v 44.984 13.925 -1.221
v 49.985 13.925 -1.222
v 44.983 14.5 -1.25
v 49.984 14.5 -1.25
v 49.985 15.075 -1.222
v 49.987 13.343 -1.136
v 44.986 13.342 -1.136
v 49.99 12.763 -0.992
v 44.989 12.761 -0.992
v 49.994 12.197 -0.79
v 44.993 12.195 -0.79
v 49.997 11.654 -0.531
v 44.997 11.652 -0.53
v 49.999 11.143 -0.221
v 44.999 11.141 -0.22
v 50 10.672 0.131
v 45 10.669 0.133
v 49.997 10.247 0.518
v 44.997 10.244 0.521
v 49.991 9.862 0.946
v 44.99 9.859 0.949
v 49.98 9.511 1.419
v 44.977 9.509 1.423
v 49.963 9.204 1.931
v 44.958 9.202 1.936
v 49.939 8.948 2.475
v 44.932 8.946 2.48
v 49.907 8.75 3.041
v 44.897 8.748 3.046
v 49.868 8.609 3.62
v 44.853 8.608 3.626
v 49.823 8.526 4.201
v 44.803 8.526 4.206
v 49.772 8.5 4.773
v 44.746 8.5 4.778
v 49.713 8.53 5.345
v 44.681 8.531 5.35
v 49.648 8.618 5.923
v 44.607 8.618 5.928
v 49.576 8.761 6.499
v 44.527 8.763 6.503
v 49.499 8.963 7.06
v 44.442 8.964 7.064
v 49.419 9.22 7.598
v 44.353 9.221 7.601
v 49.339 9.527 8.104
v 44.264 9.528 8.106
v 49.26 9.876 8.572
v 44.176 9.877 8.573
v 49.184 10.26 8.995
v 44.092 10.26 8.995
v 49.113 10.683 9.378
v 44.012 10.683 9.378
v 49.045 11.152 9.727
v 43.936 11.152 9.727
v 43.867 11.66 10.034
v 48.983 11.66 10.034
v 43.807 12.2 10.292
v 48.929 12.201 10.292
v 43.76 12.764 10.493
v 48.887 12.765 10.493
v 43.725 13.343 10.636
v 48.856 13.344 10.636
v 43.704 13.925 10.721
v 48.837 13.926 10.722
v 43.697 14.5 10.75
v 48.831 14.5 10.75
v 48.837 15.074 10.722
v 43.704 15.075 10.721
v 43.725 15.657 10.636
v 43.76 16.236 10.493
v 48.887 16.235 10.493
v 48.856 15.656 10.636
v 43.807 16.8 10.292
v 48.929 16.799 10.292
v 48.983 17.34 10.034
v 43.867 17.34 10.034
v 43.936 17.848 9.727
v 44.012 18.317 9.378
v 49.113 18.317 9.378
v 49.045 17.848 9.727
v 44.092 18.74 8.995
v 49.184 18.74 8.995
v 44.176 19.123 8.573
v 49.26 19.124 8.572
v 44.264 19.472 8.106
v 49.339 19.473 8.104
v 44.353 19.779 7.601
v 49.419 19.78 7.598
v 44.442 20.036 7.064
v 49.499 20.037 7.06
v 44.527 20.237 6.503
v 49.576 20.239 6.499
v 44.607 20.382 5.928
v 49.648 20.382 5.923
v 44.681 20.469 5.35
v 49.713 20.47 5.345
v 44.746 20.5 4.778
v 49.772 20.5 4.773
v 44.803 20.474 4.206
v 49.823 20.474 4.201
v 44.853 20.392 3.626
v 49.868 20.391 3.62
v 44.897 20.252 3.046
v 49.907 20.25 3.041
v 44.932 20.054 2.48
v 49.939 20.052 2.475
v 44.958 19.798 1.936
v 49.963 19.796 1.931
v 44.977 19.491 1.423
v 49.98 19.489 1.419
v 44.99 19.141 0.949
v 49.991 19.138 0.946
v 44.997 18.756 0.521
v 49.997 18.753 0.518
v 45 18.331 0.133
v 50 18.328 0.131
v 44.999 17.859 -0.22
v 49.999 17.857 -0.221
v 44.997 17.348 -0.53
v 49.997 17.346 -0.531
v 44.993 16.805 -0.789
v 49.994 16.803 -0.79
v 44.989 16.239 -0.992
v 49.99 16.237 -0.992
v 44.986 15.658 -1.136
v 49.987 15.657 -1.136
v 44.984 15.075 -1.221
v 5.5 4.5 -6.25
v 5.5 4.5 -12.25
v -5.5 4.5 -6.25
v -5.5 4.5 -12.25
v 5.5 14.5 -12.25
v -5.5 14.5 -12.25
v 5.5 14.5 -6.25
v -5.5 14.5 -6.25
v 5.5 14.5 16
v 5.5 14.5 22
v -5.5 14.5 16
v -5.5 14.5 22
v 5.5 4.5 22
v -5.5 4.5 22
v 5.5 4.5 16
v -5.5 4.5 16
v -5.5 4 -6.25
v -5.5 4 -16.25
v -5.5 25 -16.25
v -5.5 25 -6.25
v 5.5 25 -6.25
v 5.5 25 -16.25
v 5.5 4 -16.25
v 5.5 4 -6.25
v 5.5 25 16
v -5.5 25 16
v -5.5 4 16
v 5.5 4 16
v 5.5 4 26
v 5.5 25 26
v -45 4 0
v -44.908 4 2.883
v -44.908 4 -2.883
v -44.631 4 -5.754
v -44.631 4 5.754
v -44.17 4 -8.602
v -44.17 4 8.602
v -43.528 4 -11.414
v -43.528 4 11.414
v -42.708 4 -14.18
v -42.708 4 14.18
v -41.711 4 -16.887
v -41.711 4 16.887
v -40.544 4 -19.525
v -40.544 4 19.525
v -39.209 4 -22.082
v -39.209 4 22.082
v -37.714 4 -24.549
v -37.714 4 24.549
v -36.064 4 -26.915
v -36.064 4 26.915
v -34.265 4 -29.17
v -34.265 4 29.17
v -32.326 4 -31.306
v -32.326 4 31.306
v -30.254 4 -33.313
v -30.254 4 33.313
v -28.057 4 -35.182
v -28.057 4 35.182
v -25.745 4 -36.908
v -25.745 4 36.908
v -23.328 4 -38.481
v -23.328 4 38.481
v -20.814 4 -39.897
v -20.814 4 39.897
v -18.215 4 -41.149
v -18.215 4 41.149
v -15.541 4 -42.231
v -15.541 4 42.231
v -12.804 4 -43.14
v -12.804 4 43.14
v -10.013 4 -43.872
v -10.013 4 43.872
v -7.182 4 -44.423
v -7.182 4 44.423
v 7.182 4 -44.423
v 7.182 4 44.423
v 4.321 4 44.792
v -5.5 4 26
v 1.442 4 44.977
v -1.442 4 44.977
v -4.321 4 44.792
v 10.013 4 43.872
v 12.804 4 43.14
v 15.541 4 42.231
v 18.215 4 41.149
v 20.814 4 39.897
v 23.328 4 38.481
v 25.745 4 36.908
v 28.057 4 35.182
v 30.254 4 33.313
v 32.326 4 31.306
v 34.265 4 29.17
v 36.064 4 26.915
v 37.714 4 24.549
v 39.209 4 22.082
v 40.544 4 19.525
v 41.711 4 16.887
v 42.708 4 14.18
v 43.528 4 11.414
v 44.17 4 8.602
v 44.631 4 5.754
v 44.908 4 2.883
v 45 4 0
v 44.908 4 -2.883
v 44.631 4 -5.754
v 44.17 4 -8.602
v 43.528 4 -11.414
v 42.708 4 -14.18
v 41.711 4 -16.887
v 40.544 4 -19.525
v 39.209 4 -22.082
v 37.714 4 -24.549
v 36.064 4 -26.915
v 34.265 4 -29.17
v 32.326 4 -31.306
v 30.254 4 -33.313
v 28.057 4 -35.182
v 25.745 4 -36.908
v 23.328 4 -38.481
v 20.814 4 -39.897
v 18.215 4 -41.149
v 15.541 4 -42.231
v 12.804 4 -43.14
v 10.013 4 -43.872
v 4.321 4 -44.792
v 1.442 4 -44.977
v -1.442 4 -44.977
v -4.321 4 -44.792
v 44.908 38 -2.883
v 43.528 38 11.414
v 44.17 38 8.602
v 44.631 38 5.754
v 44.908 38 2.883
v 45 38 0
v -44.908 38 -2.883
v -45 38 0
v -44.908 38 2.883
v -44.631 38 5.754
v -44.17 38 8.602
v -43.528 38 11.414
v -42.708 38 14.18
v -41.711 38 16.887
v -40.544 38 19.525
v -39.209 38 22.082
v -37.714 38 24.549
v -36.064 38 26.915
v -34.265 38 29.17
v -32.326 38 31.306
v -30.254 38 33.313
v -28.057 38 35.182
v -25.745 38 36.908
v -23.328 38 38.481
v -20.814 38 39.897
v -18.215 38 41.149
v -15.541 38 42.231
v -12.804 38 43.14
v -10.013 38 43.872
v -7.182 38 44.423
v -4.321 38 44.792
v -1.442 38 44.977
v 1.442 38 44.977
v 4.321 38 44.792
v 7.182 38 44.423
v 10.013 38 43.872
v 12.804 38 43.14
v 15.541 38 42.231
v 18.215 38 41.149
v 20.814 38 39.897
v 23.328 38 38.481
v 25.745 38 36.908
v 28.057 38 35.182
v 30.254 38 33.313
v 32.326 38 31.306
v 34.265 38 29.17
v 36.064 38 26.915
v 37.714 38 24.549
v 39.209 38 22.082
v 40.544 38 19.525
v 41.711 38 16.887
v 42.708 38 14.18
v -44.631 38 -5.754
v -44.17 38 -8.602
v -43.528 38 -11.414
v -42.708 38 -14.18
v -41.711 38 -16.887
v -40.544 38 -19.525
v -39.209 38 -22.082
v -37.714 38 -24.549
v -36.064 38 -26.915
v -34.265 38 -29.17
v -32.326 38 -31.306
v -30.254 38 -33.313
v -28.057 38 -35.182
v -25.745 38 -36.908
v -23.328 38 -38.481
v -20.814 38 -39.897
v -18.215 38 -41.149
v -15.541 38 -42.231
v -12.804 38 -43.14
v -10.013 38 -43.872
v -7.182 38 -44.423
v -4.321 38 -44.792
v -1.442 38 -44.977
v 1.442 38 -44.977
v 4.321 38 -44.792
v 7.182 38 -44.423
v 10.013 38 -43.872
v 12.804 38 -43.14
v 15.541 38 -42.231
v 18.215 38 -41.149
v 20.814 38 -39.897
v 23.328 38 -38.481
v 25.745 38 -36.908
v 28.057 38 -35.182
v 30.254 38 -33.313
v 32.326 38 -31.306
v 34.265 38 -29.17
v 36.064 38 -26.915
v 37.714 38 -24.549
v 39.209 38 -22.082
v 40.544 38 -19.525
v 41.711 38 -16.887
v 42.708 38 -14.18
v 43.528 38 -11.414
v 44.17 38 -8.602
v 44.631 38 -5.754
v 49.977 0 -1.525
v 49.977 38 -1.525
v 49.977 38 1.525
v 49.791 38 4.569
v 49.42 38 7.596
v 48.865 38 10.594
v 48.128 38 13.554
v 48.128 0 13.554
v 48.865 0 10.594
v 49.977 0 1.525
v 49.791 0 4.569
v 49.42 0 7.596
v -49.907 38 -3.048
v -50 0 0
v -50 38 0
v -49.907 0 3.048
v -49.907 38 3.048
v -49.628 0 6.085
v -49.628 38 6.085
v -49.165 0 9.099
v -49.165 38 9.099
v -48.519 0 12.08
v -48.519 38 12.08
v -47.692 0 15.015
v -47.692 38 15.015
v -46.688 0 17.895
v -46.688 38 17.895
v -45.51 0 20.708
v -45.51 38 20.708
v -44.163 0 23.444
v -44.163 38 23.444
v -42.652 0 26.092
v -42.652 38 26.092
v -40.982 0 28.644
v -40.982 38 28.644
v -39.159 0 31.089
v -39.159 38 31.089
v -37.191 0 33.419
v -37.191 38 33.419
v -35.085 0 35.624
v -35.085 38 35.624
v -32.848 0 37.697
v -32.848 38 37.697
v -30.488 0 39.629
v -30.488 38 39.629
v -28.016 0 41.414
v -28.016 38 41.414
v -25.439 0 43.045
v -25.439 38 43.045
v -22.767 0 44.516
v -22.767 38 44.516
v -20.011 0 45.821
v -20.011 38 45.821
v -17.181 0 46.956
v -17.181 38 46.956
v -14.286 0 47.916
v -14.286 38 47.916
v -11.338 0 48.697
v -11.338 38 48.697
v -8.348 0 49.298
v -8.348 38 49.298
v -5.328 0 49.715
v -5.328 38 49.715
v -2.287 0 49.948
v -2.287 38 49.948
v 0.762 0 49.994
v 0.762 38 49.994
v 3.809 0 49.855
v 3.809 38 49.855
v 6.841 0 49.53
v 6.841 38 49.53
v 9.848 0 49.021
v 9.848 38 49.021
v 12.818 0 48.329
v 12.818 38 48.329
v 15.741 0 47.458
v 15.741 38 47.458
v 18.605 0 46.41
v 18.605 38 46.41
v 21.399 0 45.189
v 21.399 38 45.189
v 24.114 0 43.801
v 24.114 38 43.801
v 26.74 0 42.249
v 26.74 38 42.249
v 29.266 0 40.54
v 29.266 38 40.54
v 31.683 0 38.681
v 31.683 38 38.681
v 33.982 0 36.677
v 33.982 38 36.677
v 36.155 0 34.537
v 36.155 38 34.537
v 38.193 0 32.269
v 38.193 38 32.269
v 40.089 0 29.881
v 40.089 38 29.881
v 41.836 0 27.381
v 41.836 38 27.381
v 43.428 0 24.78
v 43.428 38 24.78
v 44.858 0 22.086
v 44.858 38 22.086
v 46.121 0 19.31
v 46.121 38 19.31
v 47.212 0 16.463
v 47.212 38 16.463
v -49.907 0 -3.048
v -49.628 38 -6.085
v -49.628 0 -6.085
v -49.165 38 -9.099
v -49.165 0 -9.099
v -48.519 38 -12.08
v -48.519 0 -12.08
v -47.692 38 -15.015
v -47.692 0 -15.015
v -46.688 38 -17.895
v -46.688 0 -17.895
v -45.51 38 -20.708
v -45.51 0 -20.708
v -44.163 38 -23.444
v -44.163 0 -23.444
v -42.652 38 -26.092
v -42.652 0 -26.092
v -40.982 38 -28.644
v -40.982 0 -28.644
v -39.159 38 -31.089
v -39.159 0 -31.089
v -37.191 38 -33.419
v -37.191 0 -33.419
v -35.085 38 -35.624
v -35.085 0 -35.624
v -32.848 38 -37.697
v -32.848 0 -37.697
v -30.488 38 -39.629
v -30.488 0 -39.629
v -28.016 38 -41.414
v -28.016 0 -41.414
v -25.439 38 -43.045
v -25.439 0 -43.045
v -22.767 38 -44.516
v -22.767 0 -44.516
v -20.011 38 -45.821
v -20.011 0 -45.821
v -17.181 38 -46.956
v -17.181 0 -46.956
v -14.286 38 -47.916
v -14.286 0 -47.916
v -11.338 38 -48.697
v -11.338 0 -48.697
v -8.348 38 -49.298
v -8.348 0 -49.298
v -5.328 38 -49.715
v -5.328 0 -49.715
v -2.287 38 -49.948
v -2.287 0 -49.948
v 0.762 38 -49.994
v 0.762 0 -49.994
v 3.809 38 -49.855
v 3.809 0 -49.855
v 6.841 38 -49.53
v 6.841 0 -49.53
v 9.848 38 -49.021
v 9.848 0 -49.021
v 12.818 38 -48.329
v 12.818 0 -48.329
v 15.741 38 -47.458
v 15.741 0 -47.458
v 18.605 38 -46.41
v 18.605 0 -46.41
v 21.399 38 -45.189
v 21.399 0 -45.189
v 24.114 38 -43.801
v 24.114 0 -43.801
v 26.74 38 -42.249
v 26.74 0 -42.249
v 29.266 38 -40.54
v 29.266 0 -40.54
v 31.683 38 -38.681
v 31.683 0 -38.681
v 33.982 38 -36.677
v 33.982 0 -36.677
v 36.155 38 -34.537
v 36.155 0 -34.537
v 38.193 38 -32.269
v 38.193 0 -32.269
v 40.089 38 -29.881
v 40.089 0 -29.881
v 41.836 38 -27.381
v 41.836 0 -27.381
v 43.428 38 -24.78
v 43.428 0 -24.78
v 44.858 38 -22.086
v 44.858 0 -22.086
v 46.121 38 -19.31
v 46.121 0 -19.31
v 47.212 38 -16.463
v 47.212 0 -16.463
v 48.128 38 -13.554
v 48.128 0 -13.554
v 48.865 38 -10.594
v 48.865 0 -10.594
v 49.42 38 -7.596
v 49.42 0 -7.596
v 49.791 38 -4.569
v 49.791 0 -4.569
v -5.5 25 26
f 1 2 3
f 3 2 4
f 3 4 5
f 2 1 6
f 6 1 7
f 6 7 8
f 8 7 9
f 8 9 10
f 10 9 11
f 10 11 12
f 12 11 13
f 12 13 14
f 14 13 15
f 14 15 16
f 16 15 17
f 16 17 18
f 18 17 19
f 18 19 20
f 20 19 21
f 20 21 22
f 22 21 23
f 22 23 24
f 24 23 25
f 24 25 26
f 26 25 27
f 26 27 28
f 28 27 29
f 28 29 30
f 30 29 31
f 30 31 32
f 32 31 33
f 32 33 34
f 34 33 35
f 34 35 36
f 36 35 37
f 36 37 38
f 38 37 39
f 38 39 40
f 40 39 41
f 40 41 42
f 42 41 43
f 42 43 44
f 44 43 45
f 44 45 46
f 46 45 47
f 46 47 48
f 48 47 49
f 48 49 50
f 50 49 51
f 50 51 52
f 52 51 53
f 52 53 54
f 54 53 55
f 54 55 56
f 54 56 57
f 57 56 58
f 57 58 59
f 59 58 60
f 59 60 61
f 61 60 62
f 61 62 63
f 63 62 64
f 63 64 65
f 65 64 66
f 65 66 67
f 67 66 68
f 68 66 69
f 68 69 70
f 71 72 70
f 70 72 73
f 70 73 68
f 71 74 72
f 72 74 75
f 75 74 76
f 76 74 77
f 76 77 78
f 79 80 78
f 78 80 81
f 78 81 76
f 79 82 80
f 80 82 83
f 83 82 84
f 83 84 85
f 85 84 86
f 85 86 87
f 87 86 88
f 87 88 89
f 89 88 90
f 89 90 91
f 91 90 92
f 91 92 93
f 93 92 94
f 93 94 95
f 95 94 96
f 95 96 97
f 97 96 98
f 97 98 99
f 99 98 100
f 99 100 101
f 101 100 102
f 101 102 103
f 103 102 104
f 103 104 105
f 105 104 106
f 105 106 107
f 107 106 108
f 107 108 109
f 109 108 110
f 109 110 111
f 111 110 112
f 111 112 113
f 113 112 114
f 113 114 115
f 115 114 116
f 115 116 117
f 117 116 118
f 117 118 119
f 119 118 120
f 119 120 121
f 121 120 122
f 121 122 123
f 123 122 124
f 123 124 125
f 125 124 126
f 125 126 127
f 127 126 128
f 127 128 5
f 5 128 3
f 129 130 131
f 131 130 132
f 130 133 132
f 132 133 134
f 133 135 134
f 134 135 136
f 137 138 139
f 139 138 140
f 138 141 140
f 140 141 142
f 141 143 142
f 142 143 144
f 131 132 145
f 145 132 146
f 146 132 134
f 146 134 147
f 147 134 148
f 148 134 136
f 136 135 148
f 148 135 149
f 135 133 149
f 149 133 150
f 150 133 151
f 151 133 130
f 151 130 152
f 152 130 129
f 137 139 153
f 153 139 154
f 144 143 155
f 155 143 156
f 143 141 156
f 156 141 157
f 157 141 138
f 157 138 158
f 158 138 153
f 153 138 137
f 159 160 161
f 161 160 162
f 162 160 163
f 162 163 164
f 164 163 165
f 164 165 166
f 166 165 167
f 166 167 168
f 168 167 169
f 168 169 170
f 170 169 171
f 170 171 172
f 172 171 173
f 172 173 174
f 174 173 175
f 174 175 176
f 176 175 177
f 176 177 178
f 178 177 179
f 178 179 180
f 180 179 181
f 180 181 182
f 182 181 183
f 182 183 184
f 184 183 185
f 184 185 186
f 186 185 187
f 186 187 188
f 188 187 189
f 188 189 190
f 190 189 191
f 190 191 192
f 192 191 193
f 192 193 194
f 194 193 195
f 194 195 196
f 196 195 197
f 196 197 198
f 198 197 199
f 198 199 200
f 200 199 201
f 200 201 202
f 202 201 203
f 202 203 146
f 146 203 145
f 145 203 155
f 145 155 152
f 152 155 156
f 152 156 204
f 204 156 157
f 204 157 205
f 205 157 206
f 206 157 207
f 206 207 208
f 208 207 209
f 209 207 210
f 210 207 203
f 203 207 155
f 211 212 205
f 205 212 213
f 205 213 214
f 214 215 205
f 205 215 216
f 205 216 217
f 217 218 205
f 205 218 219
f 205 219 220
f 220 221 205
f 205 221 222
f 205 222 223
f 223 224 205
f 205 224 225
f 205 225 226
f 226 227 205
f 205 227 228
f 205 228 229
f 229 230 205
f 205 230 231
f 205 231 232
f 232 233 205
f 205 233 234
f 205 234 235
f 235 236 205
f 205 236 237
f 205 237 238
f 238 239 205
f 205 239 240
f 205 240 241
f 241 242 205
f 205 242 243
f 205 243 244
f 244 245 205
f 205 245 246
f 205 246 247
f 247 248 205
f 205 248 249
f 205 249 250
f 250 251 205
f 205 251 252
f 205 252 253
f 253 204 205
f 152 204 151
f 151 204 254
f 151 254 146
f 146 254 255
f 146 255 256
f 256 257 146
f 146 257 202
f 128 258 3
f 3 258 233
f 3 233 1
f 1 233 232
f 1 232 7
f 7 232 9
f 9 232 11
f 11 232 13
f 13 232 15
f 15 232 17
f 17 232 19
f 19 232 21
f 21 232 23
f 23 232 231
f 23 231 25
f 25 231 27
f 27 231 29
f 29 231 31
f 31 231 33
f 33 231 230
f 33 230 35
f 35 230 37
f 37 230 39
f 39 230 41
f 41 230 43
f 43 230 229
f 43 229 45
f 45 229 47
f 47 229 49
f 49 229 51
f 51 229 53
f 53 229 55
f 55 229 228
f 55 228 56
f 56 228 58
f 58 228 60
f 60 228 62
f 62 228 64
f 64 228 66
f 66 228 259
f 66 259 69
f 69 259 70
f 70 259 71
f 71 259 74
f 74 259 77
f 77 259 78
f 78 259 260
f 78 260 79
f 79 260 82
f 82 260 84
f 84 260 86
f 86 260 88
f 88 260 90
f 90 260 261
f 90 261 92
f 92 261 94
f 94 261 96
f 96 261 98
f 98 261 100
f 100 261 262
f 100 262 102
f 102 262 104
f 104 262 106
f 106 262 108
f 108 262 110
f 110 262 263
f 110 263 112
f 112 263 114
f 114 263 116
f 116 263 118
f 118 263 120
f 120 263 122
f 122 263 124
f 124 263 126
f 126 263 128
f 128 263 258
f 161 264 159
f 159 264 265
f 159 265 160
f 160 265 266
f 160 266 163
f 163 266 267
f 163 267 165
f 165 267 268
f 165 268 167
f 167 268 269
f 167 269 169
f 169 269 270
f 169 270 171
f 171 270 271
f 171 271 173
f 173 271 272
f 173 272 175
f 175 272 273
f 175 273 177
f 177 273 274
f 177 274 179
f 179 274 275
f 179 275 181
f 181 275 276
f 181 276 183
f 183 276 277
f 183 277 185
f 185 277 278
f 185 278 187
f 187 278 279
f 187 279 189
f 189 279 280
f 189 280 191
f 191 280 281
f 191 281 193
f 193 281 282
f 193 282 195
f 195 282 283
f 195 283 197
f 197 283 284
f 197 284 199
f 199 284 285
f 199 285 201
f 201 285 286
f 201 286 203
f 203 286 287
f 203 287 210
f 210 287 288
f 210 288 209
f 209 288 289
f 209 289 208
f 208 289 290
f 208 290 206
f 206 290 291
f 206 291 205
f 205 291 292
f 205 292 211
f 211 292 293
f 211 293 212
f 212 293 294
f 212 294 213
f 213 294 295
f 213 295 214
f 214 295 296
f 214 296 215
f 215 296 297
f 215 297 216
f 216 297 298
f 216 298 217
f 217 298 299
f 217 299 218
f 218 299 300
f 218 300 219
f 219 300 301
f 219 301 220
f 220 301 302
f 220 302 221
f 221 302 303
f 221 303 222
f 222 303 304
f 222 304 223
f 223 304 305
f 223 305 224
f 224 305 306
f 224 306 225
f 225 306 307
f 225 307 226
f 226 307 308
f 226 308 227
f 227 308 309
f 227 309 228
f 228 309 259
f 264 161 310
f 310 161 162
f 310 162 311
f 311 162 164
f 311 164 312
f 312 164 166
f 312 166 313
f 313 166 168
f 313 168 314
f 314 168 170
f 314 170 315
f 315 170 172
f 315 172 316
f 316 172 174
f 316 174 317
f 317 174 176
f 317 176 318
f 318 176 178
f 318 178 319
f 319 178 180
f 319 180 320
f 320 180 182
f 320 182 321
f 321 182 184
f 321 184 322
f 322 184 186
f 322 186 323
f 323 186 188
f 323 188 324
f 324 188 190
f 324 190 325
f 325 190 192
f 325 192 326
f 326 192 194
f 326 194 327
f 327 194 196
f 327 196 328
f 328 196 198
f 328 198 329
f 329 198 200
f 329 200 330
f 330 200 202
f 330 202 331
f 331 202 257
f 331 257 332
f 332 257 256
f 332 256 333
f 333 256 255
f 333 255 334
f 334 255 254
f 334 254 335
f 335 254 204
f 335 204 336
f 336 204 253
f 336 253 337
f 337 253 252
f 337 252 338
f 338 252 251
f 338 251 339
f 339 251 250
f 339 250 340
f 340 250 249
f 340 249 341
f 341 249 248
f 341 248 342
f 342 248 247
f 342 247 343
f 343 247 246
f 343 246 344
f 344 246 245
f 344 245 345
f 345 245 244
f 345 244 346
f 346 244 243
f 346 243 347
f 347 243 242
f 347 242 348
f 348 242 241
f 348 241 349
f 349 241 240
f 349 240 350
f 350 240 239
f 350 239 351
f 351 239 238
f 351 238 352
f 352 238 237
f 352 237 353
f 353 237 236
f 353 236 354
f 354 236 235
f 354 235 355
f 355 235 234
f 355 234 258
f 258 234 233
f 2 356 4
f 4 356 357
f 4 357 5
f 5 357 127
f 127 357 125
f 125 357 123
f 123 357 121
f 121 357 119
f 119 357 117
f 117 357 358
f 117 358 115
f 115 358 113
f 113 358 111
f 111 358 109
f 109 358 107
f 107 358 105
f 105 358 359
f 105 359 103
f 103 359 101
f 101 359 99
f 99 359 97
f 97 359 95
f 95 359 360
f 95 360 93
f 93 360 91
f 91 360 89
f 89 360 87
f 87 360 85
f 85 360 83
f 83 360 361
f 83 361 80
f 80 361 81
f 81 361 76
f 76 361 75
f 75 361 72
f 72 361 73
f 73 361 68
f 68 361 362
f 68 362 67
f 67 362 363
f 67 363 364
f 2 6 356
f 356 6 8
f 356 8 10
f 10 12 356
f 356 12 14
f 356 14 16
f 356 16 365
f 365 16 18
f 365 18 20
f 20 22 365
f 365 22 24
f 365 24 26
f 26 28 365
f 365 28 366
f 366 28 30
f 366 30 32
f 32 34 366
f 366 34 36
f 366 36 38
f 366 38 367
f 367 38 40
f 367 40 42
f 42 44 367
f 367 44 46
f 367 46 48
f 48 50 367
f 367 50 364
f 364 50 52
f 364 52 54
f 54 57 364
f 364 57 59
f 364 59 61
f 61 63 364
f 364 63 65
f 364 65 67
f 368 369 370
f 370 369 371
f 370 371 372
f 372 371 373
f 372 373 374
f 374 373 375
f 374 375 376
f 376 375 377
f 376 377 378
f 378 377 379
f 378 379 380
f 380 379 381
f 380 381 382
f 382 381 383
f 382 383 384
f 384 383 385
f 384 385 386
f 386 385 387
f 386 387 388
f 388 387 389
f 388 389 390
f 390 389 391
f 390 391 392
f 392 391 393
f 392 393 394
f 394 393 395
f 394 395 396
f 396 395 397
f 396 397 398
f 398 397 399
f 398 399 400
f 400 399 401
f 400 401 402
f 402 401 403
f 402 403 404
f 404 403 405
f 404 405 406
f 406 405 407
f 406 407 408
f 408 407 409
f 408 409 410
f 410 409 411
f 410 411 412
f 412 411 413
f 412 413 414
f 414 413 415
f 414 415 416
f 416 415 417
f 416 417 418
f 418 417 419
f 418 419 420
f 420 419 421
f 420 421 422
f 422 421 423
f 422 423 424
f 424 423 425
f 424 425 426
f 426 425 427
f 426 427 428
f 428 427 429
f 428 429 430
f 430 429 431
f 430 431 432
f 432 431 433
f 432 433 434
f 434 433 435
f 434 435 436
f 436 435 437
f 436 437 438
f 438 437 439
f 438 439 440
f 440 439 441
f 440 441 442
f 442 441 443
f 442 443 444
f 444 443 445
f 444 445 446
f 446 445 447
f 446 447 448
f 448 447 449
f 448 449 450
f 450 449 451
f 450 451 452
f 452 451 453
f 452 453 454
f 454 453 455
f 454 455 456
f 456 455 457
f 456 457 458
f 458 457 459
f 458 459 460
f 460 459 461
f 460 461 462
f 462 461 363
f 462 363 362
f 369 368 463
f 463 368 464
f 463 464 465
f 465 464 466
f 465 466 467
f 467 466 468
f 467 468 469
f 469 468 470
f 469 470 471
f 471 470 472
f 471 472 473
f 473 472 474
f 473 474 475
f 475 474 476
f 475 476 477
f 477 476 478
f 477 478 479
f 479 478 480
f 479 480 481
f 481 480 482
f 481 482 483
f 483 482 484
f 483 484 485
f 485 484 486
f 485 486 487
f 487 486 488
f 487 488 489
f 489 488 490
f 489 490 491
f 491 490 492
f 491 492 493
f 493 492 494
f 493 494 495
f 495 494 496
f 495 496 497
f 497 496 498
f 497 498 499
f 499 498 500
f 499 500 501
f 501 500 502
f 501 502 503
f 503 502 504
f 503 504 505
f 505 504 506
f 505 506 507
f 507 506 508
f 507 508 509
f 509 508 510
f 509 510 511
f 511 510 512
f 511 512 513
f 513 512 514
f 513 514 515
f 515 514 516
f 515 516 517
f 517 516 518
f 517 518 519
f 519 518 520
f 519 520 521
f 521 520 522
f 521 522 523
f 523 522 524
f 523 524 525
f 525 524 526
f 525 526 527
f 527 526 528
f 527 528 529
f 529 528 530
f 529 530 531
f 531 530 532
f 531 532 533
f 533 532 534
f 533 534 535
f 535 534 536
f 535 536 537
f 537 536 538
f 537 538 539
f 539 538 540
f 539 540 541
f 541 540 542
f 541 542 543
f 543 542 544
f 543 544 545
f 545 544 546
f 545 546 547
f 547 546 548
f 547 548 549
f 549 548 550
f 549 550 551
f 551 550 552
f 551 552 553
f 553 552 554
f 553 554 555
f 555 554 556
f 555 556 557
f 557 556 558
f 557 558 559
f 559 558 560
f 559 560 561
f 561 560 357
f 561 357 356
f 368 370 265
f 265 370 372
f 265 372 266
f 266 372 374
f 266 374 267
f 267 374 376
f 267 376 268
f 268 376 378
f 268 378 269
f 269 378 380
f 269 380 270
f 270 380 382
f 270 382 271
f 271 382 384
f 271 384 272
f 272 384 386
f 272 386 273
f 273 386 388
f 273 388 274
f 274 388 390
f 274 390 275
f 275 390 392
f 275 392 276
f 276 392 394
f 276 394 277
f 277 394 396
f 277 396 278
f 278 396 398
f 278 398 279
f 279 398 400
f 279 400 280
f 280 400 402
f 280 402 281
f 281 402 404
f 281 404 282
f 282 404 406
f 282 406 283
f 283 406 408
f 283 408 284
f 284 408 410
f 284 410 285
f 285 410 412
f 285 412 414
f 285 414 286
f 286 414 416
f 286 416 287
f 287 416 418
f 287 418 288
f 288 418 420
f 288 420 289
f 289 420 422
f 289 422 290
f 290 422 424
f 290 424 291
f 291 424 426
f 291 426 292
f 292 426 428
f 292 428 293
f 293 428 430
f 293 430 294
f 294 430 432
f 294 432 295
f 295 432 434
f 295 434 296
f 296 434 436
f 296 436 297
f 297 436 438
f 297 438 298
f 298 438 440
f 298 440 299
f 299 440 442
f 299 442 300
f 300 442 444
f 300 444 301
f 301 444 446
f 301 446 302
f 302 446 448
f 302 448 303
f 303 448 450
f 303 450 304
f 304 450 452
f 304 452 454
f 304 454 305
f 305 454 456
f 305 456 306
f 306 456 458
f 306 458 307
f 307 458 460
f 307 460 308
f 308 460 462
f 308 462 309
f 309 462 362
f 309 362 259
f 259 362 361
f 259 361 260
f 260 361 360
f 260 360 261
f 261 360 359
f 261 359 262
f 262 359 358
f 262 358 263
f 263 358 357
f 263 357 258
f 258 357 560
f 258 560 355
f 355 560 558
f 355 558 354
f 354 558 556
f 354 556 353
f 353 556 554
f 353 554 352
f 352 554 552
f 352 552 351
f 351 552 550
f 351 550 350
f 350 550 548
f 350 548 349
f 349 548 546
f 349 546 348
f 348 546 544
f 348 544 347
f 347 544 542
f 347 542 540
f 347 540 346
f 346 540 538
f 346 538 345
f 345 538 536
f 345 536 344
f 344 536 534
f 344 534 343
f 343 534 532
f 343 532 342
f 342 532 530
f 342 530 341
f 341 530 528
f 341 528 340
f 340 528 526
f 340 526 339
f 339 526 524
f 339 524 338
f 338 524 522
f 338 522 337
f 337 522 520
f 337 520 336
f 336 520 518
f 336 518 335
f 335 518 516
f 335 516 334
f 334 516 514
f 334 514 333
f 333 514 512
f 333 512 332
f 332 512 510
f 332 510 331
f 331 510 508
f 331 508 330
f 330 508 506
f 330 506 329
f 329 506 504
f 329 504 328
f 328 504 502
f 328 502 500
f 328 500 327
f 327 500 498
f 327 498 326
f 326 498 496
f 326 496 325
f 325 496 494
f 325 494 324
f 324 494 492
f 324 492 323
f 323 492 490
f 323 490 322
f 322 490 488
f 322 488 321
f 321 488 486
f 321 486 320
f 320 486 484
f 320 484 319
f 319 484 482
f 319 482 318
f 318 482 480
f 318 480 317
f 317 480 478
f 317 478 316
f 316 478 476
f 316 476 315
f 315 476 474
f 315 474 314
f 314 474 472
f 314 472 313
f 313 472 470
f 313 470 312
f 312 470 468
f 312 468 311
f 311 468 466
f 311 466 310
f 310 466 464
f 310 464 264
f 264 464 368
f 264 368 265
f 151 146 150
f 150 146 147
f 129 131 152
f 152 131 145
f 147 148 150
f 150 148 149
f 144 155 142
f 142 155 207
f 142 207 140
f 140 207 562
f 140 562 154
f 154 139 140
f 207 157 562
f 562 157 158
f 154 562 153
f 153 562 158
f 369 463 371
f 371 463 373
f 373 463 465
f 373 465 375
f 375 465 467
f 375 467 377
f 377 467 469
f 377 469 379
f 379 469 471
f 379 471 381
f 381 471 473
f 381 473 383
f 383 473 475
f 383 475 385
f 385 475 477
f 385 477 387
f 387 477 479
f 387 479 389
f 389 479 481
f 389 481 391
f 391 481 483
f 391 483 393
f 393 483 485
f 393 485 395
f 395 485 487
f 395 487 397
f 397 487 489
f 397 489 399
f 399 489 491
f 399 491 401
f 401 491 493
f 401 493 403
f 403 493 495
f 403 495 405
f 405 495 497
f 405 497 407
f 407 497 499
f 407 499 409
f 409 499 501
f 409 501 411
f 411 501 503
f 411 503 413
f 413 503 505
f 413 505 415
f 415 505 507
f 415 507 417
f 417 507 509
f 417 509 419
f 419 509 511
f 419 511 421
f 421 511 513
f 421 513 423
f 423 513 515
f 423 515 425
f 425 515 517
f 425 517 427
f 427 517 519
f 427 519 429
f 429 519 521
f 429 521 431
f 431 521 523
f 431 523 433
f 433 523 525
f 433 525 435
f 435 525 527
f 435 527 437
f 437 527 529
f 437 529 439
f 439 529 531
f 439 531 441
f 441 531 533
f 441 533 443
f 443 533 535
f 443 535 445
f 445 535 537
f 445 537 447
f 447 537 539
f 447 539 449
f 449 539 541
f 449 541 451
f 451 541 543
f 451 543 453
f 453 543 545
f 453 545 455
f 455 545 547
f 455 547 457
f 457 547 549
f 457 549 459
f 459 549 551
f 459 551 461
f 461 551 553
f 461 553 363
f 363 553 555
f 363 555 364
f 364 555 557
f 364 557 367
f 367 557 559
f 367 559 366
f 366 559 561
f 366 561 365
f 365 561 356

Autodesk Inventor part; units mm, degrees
ref_plane "YZ Plane" through (0, 0, 0) normal (1, 0, 0) x (0, 1, 0)
ref_plane "XZ Plane" through (0, 0, 0) normal (0, 1, 0) x (-1, 0, 0)
ref_plane "XY Plane" through (0, 0, 0) normal (0, 0, 1) x (1, 0, 0)
sketch "Szkic1" plane through (0, 0, 0) normal (0, 1, 0) x (-1, 0, 0)
  circle A0 centre (0, 0) radius 50
  circle A1 centre (0, 0) radius 45
  line L0 (-5.5, 26) -> (5.5, 26)
  line L1 (5.5, 26) -> (5.5, 16)
  line L2 (5.5, 16) -> (-5.5, 16)
  line L3 (-5.5, 16) -> (-5.5, 26)
  line L4 (-5.5, 26) -> (5.5, 16) construction
  line L5 (5.5, 26) -> (-5.5, 16) construction
  line L6 (-5.5, -6.25) -> (5.5, -6.25)
  line L7 (5.5, -6.25) -> (5.5, -16.25)
  line L8 (5.5, -16.25) -> (-5.5, -16.25)
  line L9 (-5.5, -16.25) -> (-5.5, -6.25)
  line L10 (-5.5, -6.25) -> (5.5, -16.25) construction
  line L11 (5.5, -6.25) -> (-5.5, -16.25) construction
  point P0 (0, 21)
  point P1 (0, -11.25)
  point P2 (0, 16)
  dimension "d0" = 100
  dimension "d1" = 90
  dimension "d2" = 11
  dimension "d3" = 10
  dimension "d4" = 11
  dimension "d5" = 10
  dimension "d6" = 6.25
  dimension "d7" = 16
extrude "Wyciągnięcie proste1" add sketch "Szkic1" along normal blind 25 contours L0 L1 L2 L3 | L6 L7 L8 L9
extrude "Wyciągnięcie proste2" add sketch "Szkic1" along normal blind 38 contours A0
extrude "Wyciągnięcie proste3" add sketch "Szkic1" along normal blind 4 contours A1
sketch "Szkic2" plane through (5.5, 25, 26) normal (1, 0, 0) x (0, 0, -1)
  line L0 (10, -21) -> (10, 0) projected
  line L1 (10, -10.5) -> (4, -10.5)
  line L2 (4, -10.5) -> (4, -20.5)
  line L3 (4, -20.5) -> (10, -20.5)
  line L4 (10, -20.5) -> (10, -10.5)
  line L5 (32.25, -21) -> (32.25, 0) projected
  line L6 (32.25, -10.5) -> (38.25, -10.5)
  line L7 (38.25, -10.5) -> (38.25, -20.5)
  line L8 (38.25, -20.5) -> (32.25, -20.5)
  line L9 (32.25, -20.5) -> (32.25, -10.5)
  point P0 (26, -25)
  point P1 (10, -20.5)
  dimension "d14" = 6
  dimension "d15" = 10
  dimension "d16" = 6
  dimension "d17" = 10
extrude "Wyciągnięcie proste4" cut sketch "Szkic2" against normal blind 11
ref_plane "Płaszczyzna konstrukcyjna1" through (0, 25, 16) normal (-1, 0, 0) x (0, 0, 1)
sketch "Szkic3" plane through (0, 25, 16) normal (-1, 0, 0) x (0, 0, 1)
  circle A0 centre (-11.25, -10.5) radius 6
  point P0 (-16, -25)
  dimension "d20" = 12
extrude "Wyciągnięcie proste5" cut sketch "Szkic3" against normal through all
sketch "Szkic4" plane through (0, 0, 0) normal (0, -1, 0) x (1, 0, 0)
  point P0 (0, 0)
properties part number "podstawa roobota_Drukowanie 3D"
